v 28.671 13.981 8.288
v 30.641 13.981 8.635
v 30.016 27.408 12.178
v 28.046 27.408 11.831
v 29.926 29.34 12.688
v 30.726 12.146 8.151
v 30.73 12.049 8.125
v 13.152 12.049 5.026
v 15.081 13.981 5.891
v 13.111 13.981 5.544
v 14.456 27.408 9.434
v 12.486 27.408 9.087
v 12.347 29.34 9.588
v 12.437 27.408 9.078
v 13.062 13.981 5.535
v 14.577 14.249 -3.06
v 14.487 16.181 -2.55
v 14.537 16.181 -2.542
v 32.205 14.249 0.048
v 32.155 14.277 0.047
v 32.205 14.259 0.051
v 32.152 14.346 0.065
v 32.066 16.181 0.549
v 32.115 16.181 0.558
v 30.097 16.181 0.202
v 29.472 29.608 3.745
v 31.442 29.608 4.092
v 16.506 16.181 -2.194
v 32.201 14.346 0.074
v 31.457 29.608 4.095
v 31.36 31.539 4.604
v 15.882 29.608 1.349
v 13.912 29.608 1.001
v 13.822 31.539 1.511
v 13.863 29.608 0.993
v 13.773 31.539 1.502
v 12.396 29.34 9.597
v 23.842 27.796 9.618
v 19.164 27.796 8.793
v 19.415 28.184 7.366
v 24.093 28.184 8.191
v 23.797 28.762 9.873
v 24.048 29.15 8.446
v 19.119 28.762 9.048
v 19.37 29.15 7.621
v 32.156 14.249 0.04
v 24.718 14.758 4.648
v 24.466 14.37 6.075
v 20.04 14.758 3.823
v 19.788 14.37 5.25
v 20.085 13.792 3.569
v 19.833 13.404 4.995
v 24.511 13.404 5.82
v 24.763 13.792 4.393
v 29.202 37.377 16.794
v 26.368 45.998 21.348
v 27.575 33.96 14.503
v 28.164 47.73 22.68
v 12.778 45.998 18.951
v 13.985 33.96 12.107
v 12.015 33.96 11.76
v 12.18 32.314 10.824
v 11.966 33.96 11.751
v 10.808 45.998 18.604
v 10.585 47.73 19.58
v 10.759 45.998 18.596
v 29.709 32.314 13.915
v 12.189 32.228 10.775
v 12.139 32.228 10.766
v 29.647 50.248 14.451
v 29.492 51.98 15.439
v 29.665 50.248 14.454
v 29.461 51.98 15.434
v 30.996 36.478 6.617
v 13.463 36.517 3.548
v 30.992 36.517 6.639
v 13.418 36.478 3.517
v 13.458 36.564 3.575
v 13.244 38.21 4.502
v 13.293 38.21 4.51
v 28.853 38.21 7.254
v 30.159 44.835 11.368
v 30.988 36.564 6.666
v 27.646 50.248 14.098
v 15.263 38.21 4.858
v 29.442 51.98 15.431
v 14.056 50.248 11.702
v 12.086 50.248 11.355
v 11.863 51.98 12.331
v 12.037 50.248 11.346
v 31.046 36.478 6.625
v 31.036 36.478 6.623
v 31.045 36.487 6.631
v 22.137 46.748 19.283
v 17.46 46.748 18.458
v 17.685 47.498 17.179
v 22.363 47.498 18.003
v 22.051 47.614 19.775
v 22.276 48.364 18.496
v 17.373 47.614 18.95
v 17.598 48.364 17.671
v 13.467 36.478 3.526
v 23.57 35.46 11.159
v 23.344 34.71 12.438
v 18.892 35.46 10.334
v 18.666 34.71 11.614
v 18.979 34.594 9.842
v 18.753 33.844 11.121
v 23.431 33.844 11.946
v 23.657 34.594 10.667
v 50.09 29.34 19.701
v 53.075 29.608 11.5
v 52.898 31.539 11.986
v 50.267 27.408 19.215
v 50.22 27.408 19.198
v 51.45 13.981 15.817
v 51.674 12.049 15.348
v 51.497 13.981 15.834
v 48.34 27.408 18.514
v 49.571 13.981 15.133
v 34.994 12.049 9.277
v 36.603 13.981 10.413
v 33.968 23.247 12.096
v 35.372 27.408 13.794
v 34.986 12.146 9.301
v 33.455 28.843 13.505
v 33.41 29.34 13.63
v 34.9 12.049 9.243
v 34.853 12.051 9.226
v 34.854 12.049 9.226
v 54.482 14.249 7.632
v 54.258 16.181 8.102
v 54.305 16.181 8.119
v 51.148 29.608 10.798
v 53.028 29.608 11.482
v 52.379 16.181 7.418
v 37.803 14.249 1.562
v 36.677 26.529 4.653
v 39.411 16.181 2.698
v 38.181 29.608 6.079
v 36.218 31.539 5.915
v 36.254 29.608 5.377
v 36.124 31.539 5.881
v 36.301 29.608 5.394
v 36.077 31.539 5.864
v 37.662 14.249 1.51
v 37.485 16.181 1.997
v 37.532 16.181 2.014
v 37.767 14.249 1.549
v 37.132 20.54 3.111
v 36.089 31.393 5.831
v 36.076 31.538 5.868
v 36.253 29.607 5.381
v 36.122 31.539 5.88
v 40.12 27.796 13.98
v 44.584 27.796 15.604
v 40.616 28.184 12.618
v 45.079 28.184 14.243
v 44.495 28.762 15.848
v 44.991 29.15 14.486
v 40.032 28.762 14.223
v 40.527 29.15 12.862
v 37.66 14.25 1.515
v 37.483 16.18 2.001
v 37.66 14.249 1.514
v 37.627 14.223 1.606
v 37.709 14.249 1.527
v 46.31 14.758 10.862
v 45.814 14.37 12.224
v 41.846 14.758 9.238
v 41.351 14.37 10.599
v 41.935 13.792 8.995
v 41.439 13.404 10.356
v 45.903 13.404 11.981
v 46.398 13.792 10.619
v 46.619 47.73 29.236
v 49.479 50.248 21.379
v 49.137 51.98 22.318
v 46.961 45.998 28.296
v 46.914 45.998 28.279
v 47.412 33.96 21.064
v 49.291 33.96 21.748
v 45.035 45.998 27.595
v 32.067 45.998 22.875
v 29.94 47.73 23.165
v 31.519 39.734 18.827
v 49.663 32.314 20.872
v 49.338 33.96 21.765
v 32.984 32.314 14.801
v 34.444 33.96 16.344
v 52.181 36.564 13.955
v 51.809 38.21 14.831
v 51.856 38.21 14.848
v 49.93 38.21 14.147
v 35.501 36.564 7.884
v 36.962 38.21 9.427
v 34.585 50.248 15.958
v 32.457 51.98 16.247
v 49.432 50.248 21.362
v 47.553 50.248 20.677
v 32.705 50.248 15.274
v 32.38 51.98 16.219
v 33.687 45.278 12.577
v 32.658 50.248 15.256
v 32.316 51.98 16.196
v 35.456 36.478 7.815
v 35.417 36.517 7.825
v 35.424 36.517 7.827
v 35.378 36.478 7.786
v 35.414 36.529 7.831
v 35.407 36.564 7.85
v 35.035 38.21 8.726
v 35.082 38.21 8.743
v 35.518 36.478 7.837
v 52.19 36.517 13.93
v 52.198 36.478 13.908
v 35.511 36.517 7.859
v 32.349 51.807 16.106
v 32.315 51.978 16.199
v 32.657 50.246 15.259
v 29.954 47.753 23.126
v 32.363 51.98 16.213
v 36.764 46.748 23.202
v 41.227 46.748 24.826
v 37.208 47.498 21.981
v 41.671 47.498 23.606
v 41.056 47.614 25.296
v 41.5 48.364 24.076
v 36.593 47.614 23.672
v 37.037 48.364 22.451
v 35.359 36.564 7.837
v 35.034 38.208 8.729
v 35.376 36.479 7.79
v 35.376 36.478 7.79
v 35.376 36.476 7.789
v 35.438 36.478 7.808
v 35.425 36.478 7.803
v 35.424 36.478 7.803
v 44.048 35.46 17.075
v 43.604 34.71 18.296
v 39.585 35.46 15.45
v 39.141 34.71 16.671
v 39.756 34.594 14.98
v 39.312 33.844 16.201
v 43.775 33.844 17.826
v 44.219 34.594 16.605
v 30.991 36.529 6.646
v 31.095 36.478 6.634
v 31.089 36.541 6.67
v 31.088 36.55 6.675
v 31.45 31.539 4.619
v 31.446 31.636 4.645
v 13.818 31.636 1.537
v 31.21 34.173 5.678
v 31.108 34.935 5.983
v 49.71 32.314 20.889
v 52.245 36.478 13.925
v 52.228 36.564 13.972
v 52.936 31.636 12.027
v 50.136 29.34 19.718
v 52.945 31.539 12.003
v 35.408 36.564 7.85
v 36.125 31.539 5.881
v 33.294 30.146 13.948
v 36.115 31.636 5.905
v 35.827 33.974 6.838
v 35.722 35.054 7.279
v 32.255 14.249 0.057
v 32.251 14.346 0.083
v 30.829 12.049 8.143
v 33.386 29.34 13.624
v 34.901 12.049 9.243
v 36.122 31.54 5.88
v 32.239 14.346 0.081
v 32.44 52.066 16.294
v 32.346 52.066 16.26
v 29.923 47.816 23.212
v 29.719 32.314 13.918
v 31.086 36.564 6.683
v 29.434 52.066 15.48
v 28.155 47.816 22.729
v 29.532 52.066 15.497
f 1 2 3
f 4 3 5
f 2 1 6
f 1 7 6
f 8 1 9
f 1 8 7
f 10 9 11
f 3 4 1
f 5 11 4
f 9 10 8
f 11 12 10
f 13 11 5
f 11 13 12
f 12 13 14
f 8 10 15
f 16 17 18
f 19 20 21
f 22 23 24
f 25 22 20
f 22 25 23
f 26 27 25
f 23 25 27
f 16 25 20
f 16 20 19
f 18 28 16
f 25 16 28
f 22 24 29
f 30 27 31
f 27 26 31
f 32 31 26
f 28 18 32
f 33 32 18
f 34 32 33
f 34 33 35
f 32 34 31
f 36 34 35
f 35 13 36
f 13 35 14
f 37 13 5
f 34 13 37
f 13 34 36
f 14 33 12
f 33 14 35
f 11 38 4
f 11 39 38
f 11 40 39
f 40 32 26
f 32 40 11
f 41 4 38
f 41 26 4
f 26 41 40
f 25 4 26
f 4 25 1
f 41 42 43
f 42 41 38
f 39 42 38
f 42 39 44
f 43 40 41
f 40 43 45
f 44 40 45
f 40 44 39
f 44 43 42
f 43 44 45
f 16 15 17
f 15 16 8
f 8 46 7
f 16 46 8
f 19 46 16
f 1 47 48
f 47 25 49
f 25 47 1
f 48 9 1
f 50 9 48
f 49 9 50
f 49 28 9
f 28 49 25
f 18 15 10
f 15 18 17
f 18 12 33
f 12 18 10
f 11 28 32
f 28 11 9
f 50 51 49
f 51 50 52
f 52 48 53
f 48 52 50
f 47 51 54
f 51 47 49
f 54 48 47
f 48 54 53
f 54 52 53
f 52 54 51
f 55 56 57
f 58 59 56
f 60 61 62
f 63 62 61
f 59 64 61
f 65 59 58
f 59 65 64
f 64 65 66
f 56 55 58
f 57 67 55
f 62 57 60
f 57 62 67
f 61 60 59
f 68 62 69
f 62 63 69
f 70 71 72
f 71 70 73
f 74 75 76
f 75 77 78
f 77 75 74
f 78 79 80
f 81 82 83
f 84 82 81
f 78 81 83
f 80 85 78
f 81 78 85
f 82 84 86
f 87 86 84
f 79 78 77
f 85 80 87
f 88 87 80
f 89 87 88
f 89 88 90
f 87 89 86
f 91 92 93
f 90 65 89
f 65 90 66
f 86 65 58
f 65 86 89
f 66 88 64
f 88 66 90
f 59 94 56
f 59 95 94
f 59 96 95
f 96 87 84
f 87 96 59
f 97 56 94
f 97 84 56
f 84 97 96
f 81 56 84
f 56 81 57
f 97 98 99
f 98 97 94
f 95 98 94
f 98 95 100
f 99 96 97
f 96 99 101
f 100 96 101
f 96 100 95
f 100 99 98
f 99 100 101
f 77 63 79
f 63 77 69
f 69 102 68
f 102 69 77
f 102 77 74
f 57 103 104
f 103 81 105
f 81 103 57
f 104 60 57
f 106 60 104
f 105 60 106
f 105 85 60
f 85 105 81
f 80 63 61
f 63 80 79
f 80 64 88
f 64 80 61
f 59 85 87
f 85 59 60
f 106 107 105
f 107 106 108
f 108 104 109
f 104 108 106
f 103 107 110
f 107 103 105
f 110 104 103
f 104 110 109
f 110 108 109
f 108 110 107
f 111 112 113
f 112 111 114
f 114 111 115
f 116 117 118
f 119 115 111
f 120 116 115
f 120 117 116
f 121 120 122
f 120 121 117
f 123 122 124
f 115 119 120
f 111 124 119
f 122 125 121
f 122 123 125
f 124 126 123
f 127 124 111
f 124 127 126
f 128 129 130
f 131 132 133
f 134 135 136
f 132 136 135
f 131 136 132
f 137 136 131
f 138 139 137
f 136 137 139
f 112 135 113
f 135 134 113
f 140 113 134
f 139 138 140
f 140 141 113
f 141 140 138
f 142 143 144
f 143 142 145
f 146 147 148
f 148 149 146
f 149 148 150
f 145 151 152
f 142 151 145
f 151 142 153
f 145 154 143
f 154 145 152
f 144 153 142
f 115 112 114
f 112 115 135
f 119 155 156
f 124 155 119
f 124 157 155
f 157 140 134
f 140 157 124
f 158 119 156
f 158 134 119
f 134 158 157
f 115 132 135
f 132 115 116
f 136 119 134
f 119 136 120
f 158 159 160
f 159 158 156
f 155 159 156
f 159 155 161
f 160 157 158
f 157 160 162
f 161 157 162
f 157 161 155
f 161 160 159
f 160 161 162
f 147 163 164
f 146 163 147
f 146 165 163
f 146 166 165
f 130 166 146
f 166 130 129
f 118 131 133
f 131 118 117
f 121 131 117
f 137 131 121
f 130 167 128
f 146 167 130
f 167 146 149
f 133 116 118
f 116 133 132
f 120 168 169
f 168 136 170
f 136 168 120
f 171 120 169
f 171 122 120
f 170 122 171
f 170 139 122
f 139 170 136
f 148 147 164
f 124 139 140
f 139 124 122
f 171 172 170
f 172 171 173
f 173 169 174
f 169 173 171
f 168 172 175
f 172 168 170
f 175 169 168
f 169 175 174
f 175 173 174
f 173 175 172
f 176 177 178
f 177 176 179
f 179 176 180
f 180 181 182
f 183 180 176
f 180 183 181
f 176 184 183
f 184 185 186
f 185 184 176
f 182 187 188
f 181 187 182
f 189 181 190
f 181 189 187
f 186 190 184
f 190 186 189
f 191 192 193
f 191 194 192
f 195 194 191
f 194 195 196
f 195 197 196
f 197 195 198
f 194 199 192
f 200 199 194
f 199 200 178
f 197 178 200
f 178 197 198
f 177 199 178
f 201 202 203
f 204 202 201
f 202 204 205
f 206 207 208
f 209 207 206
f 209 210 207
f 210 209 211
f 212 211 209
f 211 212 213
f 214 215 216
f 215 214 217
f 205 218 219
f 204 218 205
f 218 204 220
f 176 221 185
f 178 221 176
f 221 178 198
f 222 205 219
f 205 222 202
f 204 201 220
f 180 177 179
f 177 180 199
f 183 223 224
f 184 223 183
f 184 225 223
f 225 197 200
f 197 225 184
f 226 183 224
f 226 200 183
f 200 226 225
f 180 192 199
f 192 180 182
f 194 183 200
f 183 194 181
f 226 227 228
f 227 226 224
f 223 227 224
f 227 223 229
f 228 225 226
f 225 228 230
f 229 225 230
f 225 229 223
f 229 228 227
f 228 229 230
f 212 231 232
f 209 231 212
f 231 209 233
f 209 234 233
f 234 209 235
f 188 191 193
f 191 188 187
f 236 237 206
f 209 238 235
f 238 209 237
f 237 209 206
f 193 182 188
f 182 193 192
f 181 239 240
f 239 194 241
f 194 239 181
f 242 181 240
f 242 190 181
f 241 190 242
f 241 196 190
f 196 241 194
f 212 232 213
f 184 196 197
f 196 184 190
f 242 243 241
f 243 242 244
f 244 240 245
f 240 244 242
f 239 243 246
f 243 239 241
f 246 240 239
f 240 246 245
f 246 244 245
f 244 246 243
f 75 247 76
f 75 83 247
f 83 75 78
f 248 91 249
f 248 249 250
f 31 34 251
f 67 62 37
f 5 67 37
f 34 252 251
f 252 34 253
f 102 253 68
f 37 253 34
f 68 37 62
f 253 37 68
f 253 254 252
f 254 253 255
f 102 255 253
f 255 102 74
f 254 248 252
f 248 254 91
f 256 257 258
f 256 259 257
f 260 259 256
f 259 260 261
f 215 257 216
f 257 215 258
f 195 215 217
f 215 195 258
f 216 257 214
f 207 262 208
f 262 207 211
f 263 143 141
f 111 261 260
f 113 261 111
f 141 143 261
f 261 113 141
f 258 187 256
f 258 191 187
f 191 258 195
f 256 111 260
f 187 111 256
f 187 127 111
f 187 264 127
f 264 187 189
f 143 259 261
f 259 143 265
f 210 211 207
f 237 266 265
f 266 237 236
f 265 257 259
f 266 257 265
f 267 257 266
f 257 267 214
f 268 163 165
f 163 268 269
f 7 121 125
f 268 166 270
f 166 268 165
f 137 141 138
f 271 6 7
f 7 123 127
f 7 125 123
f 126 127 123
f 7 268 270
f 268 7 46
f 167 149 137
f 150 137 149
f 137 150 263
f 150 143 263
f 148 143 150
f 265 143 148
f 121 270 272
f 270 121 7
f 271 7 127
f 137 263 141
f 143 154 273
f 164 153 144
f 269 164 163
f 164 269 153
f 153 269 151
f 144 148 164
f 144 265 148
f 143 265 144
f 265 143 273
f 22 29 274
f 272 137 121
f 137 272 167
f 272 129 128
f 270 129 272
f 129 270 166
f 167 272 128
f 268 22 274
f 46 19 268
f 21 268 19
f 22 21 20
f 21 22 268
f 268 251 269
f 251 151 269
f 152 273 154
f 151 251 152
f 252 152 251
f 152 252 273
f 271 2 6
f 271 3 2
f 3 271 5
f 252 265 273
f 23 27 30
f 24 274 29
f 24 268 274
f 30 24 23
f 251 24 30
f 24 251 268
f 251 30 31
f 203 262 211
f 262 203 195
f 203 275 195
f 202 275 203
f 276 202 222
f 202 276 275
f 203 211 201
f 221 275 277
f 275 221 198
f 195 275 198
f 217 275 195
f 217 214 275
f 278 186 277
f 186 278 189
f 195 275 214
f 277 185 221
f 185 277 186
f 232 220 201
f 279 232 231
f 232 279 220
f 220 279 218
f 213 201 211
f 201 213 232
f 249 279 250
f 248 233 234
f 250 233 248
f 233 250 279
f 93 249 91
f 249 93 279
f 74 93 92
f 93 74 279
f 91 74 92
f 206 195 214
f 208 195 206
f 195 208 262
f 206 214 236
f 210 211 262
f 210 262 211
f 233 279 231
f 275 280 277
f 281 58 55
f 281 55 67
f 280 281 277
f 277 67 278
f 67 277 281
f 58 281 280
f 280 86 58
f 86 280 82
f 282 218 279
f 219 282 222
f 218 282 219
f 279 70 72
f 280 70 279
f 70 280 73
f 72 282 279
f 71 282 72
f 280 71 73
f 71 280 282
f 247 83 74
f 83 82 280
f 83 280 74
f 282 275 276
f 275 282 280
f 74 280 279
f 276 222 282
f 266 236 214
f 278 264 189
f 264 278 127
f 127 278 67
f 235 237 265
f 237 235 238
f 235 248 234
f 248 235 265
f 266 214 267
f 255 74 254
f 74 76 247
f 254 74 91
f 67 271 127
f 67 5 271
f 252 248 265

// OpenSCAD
union () {
  union () {
    translate ([0, 0, 131.15290450929663]) {
      rotate (a=10.000000000000002, v=[0, -1, 0]) {
        translate ([0, 0, -131.15290450929663]) {
          union () {
            translate ([0, 0, 84.2073157255461]) {
              rotate (a=14.999999999999998, v=[1, 0, 0]) {
                translate ([0, 0, -84.2073157255461]) {
                  union () {
                    difference () {
                      union () {
                        translate ([0, 7.95, 0]) {
                          cube ([17.9, 2, 8.5], center=true);
                        }
                        translate ([7.9, 0, 0]) {
                          cube ([2, 17.8, 8.5], center=true);
                        }
                      }
                      translate ([0, 7.45, 2.0]) {
                        cube ([4.75, 1.0, 1.5], center=true);
                      }
                    }
                    mirror ([0, 1, 0]) {
                      mirror ([1, 0, 0]) {
                        difference () {
                          union () {
                            translate ([0, 7.95, 0]) {
                              cube ([17.9, 2, 8.5], center=true);
                            }
                            translate ([7.9, 0, 0]) {
                              cube ([2, 17.8, 8.5], center=true);
                            }
                          }
                          translate ([0, 7.45, 2.0]) {
                            cube ([4.75, 1.0, 1.5], center=true);
                          }
                        }
                      }
                    }
                  }
                }
              }
            }
            translate ([0, 0, 84.2073157255461]) {
              rotate (a=29.999999999999996, v=[1, 0, 0]) {
                translate ([0, 0, -84.2073157255461]) {
                  union () {
                    difference () {
                      union () {
                        translate ([0, 7.95, 0]) {
                          cube ([17.9, 2, 8.5], center=true);
                        }
                        translate ([7.9, 0, 0]) {
                          cube ([2, 17.8, 8.5], center=true);
                        }
                      }
                      translate ([0, 7.45, 2.0]) {
                        cube ([4.75, 1.0, 1.5], center=true);
                      }
                    }
                    mirror ([0, 1, 0]) {
                      mirror ([1, 0, 0]) {
                        difference () {
                          union () {
                            translate ([0, 7.95, 0]) {
                              cube ([17.9, 2, 8.5], center=true);
                            }
                            translate ([7.9, 0, 0]) {
                              cube ([2, 17.8, 8.5], center=true);
                            }
                          }
                          translate ([0, 7.45, 2.0]) {
                            cube ([4.75, 1.0, 1.5], center=true);
                          }
                        }
                      }
                    }
                  }
                }
              }
            }
          }
        }
      }
    }
    translate ([0, 0, 131.15290450929663]) {
      rotate (a=20.000000000000004, v=[0, -1, 0]) {
        translate ([0, 0, -131.15290450929663]) {
          union () {
            translate ([0, 0, 84.2073157255461]) {
              rotate (a=14.999999999999998, v=[1, 0, 0]) {
                translate ([0, 0, -84.2073157255461]) {
                  union () {
                    difference () {
                      union () {
                        translate ([0, 7.95, 0]) {
                          cube ([17.9, 2, 8.5], center=true);
                        }
                        translate ([7.9, 0, 0]) {
                          cube ([2, 17.8, 8.5], center=true);
                        }
                      }
                      translate ([0, 7.45, 2.0]) {
                        cube ([4.75, 1.0, 1.5], center=true);
                      }
                    }
                    mirror ([0, 1, 0]) {
                      mirror ([1, 0, 0]) {
                        difference () {
                          union () {
                            translate ([0, 7.95, 0]) {
                              cube ([17.9, 2, 8.5], center=true);
                            }
                            translate ([7.9, 0, 0]) {
                              cube ([2, 17.8, 8.5], center=true);
                            }
                          }
                          translate ([0, 7.45, 2.0]) {
                            cube ([4.75, 1.0, 1.5], center=true);
                          }
                        }
                      }
                    }
                  }
                }
              }
            }
            translate ([0, 0, 84.2073157255461]) {
              rotate (a=29.999999999999996, v=[1, 0, 0]) {
                translate ([0, 0, -84.2073157255461]) {
                  union () {
                    difference () {
                      union () {
                        translate ([0, 7.95, 0]) {
                          cube ([17.9, 2, 8.5], center=true);
                        }
                        translate ([7.9, 0, 0]) {
                          cube ([2, 17.8, 8.5], center=true);
                        }
                      }
                      translate ([0, 7.45, 2.0]) {
                        cube ([4.75, 1.0, 1.5], center=true);
                      }
                    }
                    mirror ([0, 1, 0]) {
                      mirror ([1, 0, 0]) {
                        difference () {
                          union () {
                            translate ([0, 7.95, 0]) {
                              cube ([17.9, 2, 8.5], center=true);
                            }
                            translate ([7.9, 0, 0]) {
                              cube ([2, 17.8, 8.5], center=true);
                            }
                          }
                          translate ([0, 7.45, 2.0]) {
                            cube ([4.75, 1.0, 1.5], center=true);
                          }
                        }
                      }
                    }
                  }
                }
              }
            }
          }
        }
      }
    }
  }
  union () {
    translate ([0, 0, 131.15290450929663]) {
      rotate (a=10.000000000000002, v=[0, -1, 0]) {
        translate ([0, 0, -131.15290450929663]) {
          union () {
            union () {
              hull () {
                translate ([0, 0, 84.2073157255461]) {
                  rotate (a=29.999999999999996, v=[1, 0, 0]) {
                    translate ([0, 0, -84.2073157255461]) {
                      color ([16/17, 0, 0, 1]) {
                        translate ([-8.85, -8.899999999999999, 0]) {
                          translate ([0, 0, 0.0]) {
                            cube ([0.1, 0.1, 8.5], center=true);
                          }
                        }
                      }
                    }
                  }
                }
                translate ([0, 0, 84.2073157255461]) {
                  rotate (a=29.999999999999996, v=[1, 0, 0]) {
                    translate ([0, 0, -84.2073157255461]) {
                      color ([16/17, 0, 0, 1]) {
                        translate ([8.950000000000001, -8.899999999999999, 0]) {
                          translate ([0, 0, 0.0]) {
                            cube ([0.1, 0.1, 8.5], center=true);
                          }
                        }
                      }
                    }
                  }
                }
                translate ([0, 0, 84.2073157255461]) {
                  rotate (a=14.999999999999998, v=[1, 0, 0]) {
                    translate ([0, 0, -84.2073157255461]) {
                      color ([16/17, 0, 0, 1]) {
                        translate ([-8.85, 9.0, 0]) {
                          translate ([0, 0, 0.0]) {
                            cube ([0.1, 0.1, 8.5], center=true);
                          }
                        }
                      }
                    }
                  }
                }
              }
              hull () {
                translate ([0, 0, 84.2073157255461]) {
                  rotate (a=29.999999999999996, v=[1, 0, 0]) {
                    translate ([0, 0, -84.2073157255461]) {
                      color ([16/17, 0, 0, 1]) {
                        translate ([8.950000000000001, -8.899999999999999, 0]) {
                          translate ([0, 0, 0.0]) {
                            cube ([0.1, 0.1, 8.5], center=true);
                          }
                        }
                      }
                    }
                  }
                }
                translate ([0, 0, 84.2073157255461]) {
                  rotate (a=14.999999999999998, v=[1, 0, 0]) {
                    translate ([0, 0, -84.2073157255461]) {
                      color ([16/17, 0, 0, 1]) {
                        translate ([-8.85, 9.0, 0]) {
                          translate ([0, 0, 0.0]) {
                            cube ([0.1, 0.1, 8.5], center=true);
                          }
                        }
                      }
                    }
                  }
                }
                translate ([0, 0, 84.2073157255461]) {
                  rotate (a=14.999999999999998, v=[1, 0, 0]) {
                    translate ([0, 0, -84.2073157255461]) {
                      color ([16/17, 0, 0, 1]) {
                        translate ([8.950000000000001, 9.0, 0]) {
                          translate ([0, 0, 0.0]) {
                            cube ([0.1, 0.1, 8.5], center=true);
                          }
                        }
                      }
                    }
                  }
                }
              }
            }
          }
        }
      }
    }
    translate ([0, 0, 131.15290450929663]) {
      rotate (a=20.000000000000004, v=[0, -1, 0]) {
        translate ([0, 0, -131.15290450929663]) {
          union () {
            union () {
              hull () {
                translate ([0, 0, 84.2073157255461]) {
                  rotate (a=29.999999999999996, v=[1, 0, 0]) {
                    translate ([0, 0, -84.2073157255461]) {
                      color ([16/17, 0, 0, 1]) {
                        translate ([-8.85, -8.899999999999999, 0]) {
                          translate ([0, 0, 0.0]) {
                            cube ([0.1, 0.1, 8.5], center=true);
                          }
                        }
                      }
                    }
                  }
                }
                translate ([0, 0, 84.2073157255461]) {
                  rotate (a=29.999999999999996, v=[1, 0, 0]) {
                    translate ([0, 0, -84.2073157255461]) {
                      color ([16/17, 0, 0, 1]) {
                        translate ([8.950000000000001, -8.899999999999999, 0]) {
                          translate ([0, 0, 0.0]) {
                            cube ([0.1, 0.1, 8.5], center=true);
                          }
                        }
                      }
                    }
                  }
                }
                translate ([0, 0, 84.2073157255461]) {
                  rotate (a=14.999999999999998, v=[1, 0, 0]) {
                    translate ([0, 0, -84.2073157255461]) {
                      color ([16/17, 0, 0, 1]) {
                        translate ([-8.85, 9.0, 0]) {
                          translate ([0, 0, 0.0]) {
                            cube ([0.1, 0.1, 8.5], center=true);
                          }
                        }
                      }
                    }
                  }
                }
              }
              hull () {
                translate ([0, 0, 84.2073157255461]) {
                  rotate (a=29.999999999999996, v=[1, 0, 0]) {
                    translate ([0, 0, -84.2073157255461]) {
                      color ([16/17, 0, 0, 1]) {
                        translate ([8.950000000000001, -8.899999999999999, 0]) {
                          translate ([0, 0, 0.0]) {
                            cube ([0.1, 0.1, 8.5], center=true);
                          }
                        }
                      }
                    }
                  }
                }
                translate ([0, 0, 84.2073157255461]) {
                  rotate (a=14.999999999999998, v=[1, 0, 0]) {
                    translate ([0, 0, -84.2073157255461]) {
                      color ([16/17, 0, 0, 1]) {
                        translate ([-8.85, 9.0, 0]) {
                          translate ([0, 0, 0.0]) {
                            cube ([0.1, 0.1, 8.5], center=true);
                          }
                        }
                      }
                    }
                  }
                }
                translate ([0, 0, 84.2073157255461]) {
                  rotate (a=14.999999999999998, v=[1, 0, 0]) {
                    translate ([0, 0, -84.2073157255461]) {
                      color ([16/17, 0, 0, 1]) {
                        translate ([8.950000000000001, 9.0, 0]) {
                          translate ([0, 0, 0.0]) {
                            cube ([0.1, 0.1, 8.5], center=true);
                          }
                        }
                      }
                    }
                  }
                }
              }
            }
          }
        }
      }
    }
  }
  union () {
    union () {
      hull () {
        translate ([0, 0, 131.15290450929663]) {
          rotate (a=20.000000000000004, v=[0, -1, 0]) {
            translate ([0, 0, -131.15290450929663]) {
              translate ([0, 0, 84.2073157255461]) {
                rotate (a=14.999999999999998, v=[1, 0, 0]) {
                  translate ([0, 0, -84.2073157255461]) {
                    color ([16/17, 0, 0, 1]) {
                      translate ([-8.85, -8.899999999999999, 0]) {
                        translate ([0, 0, 0.0]) {
                          cube ([0.1, 0.1, 8.5], center=true);
                        }
                      }
                    }
                  }
                }
              }
            }
          }
        }
        translate ([0, 0, 131.15290450929663]) {
          rotate (a=10.000000000000002, v=[0, -1, 0]) {
            translate ([0, 0, -131.15290450929663]) {
              translate ([0, 0, 84.2073157255461]) {
                rotate (a=14.999999999999998, v=[1, 0, 0]) {
                  translate ([0, 0, -84.2073157255461]) {
                    color ([16/17, 0, 0, 1]) {
                      translate ([8.950000000000001, -8.899999999999999, 0]) {
                        translate ([0, 0, 0.0]) {
                          cube ([0.1, 0.1, 8.5], center=true);
                        }
                      }
                    }
                  }
                }
              }
            }
          }
        }
        translate ([0, 0, 131.15290450929663]) {
          rotate (a=20.000000000000004, v=[0, -1, 0]) {
            translate ([0, 0, -131.15290450929663]) {
              translate ([0, 0, 84.2073157255461]) {
                rotate (a=14.999999999999998, v=[1, 0, 0]) {
                  translate ([0, 0, -84.2073157255461]) {
                    color ([16/17, 0, 0, 1]) {
                      translate ([-8.85, 9.0, 0]) {
                        translate ([0, 0, 0.0]) {
                          cube ([0.1, 0.1, 8.5], center=true);
                        }
                      }
                    }
                  }
                }
              }
            }
          }
        }
      }
      hull () {
        translate ([0, 0, 131.15290450929663]) {
          rotate (a=10.000000000000002, v=[0, -1, 0]) {
            translate ([0, 0, -131.15290450929663]) {
              translate ([0, 0, 84.2073157255461]) {
                rotate (a=14.999999999999998, v=[1, 0, 0]) {
                  translate ([0, 0, -84.2073157255461]) {
                    color ([16/17, 0, 0, 1]) {
                      translate ([8.950000000000001, -8.899999999999999, 0]) {
                        translate ([0, 0, 0.0]) {
                          cube ([0.1, 0.1, 8.5], center=true);
                        }
                      }
                    }
                  }
                }
              }
            }
          }
        }
        translate ([0, 0, 131.15290450929663]) {
          rotate (a=20.000000000000004, v=[0, -1, 0]) {
            translate ([0, 0, -131.15290450929663]) {
              translate ([0, 0, 84.2073157255461]) {
                rotate (a=14.999999999999998, v=[1, 0, 0]) {
                  translate ([0, 0, -84.2073157255461]) {
                    color ([16/17, 0, 0, 1]) {
                      translate ([-8.85, 9.0, 0]) {
                        translate ([0, 0, 0.0]) {
                          cube ([0.1, 0.1, 8.5], center=true);
                        }
                      }
                    }
                  }
                }
              }
            }
          }
        }
        translate ([0, 0, 131.15290450929663]) {
          rotate (a=10.000000000000002, v=[0, -1, 0]) {
            translate ([0, 0, -131.15290450929663]) {
              translate ([0, 0, 84.2073157255461]) {
                rotate (a=14.999999999999998, v=[1, 0, 0]) {
                  translate ([0, 0, -84.2073157255461]) {
                    color ([16/17, 0, 0, 1]) {
                      translate ([8.950000000000001, 9.0, 0]) {
                        translate ([0, 0, 0.0]) {
                          cube ([0.1, 0.1, 8.5], center=true);
                        }
                      }
                    }
                  }
                }
              }
            }
          }
        }
      }
    }
    union () {
      hull () {
        translate ([0, 0, 131.15290450929663]) {
          rotate (a=20.000000000000004, v=[0, -1, 0]) {
            translate ([0, 0, -131.15290450929663]) {
              translate ([0, 0, 84.2073157255461]) {
                rotate (a=29.999999999999996, v=[1, 0, 0]) {
                  translate ([0, 0, -84.2073157255461]) {
                    color ([16/17, 0, 0, 1]) {
                      translate ([-8.85, -8.899999999999999, 0]) {
                        translate ([0, 0, 0.0]) {
                          cube ([0.1, 0.1, 8.5], center=true);
                        }
                      }
                    }
                  }
                }
              }
            }
          }
        }
        translate ([0, 0, 131.15290450929663]) {
          rotate (a=10.000000000000002, v=[0, -1, 0]) {
            translate ([0, 0, -131.15290450929663]) {
              translate ([0, 0, 84.2073157255461]) {
                rotate (a=29.999999999999996, v=[1, 0, 0]) {
                  translate ([0, 0, -84.2073157255461]) {
                    color ([16/17, 0, 0, 1]) {
                      translate ([8.950000000000001, -8.899999999999999, 0]) {
                        translate ([0, 0, 0.0]) {
                          cube ([0.1, 0.1, 8.5], center=true);
                        }
                      }
                    }
                  }
                }
              }
            }
          }
        }
        translate ([0, 0, 131.15290450929663]) {
          rotate (a=20.000000000000004, v=[0, -1, 0]) {
            translate ([0, 0, -131.15290450929663]) {
              translate ([0, 0, 84.2073157255461]) {
                rotate (a=29.999999999999996, v=[1, 0, 0]) {
                  translate ([0, 0, -84.2073157255461]) {
                    color ([16/17, 0, 0, 1]) {
                      translate ([-8.85, 9.0, 0]) {
                        translate ([0, 0, 0.0]) {
                          cube ([0.1, 0.1, 8.5], center=true);
                        }
                      }
                    }
                  }
                }
              }
            }
          }
        }
      }
      hull () {
        translate ([0, 0, 131.15290450929663]) {
          rotate (a=10.000000000000002, v=[0, -1, 0]) {
            translate ([0, 0, -131.15290450929663]) {
              translate ([0, 0, 84.2073157255461]) {
                rotate (a=29.999999999999996, v=[1, 0, 0]) {
                  translate ([0, 0, -84.2073157255461]) {
                    color ([16/17, 0, 0, 1]) {
                      translate ([8.950000000000001, -8.899999999999999, 0]) {
                        translate ([0, 0, 0.0]) {
                          cube ([0.1, 0.1, 8.5], center=true);
                        }
                      }
                    }
                  }
                }
              }
            }
          }
        }
        translate ([0, 0, 131.15290450929663]) {
          rotate (a=20.000000000000004, v=[0, -1, 0]) {
            translate ([0, 0, -131.15290450929663]) {
              translate ([0, 0, 84.2073157255461]) {
                rotate (a=29.999999999999996, v=[1, 0, 0]) {
                  translate ([0, 0, -84.2073157255461]) {
                    color ([16/17, 0, 0, 1]) {
                      translate ([-8.85, 9.0, 0]) {
                        translate ([0, 0, 0.0]) {
                          cube ([0.1, 0.1, 8.5], center=true);
                        }
                      }
                    }
                  }
                }
              }
            }
          }
        }
        translate ([0, 0, 131.15290450929663]) {
          rotate (a=10.000000000000002, v=[0, -1, 0]) {
            translate ([0, 0, -131.15290450929663]) {
              translate ([0, 0, 84.2073157255461]) {
                rotate (a=29.999999999999996, v=[1, 0, 0]) {
                  translate ([0, 0, -84.2073157255461]) {
                    color ([16/17, 0, 0, 1]) {
                      translate ([8.950000000000001, 9.0, 0]) {
                        translate ([0, 0, 0.0]) {
                          cube ([0.1, 0.1, 8.5], center=true);
                        }
                      }
                    }
                  }
                }
              }
            }
          }
        }
      }
    }
  }
  union () {
    union () {
      hull () {
        translate ([0, 0, 131.15290450929663]) {
          rotate (a=20.000000000000004, v=[0, -1, 0]) {
            translate ([0, 0, -131.15290450929663]) {
              translate ([0, 0, 84.2073157255461]) {
                rotate (a=29.999999999999996, v=[1, 0, 0]) {
                  translate ([0, 0, -84.2073157255461]) {
                    color ([16/17, 0, 0, 1]) {
                      translate ([-8.85, -8.899999999999999, 0]) {
                        translate ([0, 0, 0.0]) {
                          cube ([0.1, 0.1, 8.5], center=true);
                        }
                      }
                    }
                  }
                }
              }
            }
          }
        }
        translate ([0, 0, 131.15290450929663]) {
          rotate (a=10.000000000000002, v=[0, -1, 0]) {
            translate ([0, 0, -131.15290450929663]) {
              translate ([0, 0, 84.2073157255461]) {
                rotate (a=29.999999999999996, v=[1, 0, 0]) {
                  translate ([0, 0, -84.2073157255461]) {
                    color ([16/17, 0, 0, 1]) {
                      translate ([8.950000000000001, -8.899999999999999, 0]) {
                        translate ([0, 0, 0.0]) {
                          cube ([0.1, 0.1, 8.5], center=true);
                        }
                      }
                    }
                  }
                }
              }
            }
          }
        }
        translate ([0, 0, 131.15290450929663]) {
          rotate (a=20.000000000000004, v=[0, -1, 0]) {
            translate ([0, 0, -131.15290450929663]) {
              translate ([0, 0, 84.2073157255461]) {
                rotate (a=14.999999999999998, v=[1, 0, 0]) {
                  translate ([0, 0, -84.2073157255461]) {
                    color ([16/17, 0, 0, 1]) {
                      translate ([-8.85, 9.0, 0]) {
                        translate ([0, 0, 0.0]) {
                          cube ([0.1, 0.1, 8.5], center=true);
                        }
                      }
                    }
                  }
                }
              }
            }
          }
        }
      }
      hull () {
        translate ([0, 0, 131.15290450929663]) {
          rotate (a=10.000000000000002, v=[0, -1, 0]) {
            translate ([0, 0, -131.15290450929663]) {
              translate ([0, 0, 84.2073157255461]) {
                rotate (a=29.999999999999996, v=[1, 0, 0]) {
                  translate ([0, 0, -84.2073157255461]) {
                    color ([16/17, 0, 0, 1]) {
                      translate ([8.950000000000001, -8.899999999999999, 0]) {
                        translate ([0, 0, 0.0]) {
                          cube ([0.1, 0.1, 8.5], center=true);
                        }
                      }
                    }
                  }
                }
              }
            }
          }
        }
        translate ([0, 0, 131.15290450929663]) {
          rotate (a=20.000000000000004, v=[0, -1, 0]) {
            translate ([0, 0, -131.15290450929663]) {
              translate ([0, 0, 84.2073157255461]) {
                rotate (a=14.999999999999998, v=[1, 0, 0]) {
                  translate ([0, 0, -84.2073157255461]) {
                    color ([16/17, 0, 0, 1]) {
                      translate ([-8.85, 9.0, 0]) {
                        translate ([0, 0, 0.0]) {
                          cube ([0.1, 0.1, 8.5], center=true);
                        }
                      }
                    }
                  }
                }
              }
            }
          }
        }
        translate ([0, 0, 131.15290450929663]) {
          rotate (a=10.000000000000002, v=[0, -1, 0]) {
            translate ([0, 0, -131.15290450929663]) {
              translate ([0, 0, 84.2073157255461]) {
                rotate (a=14.999999999999998, v=[1, 0, 0]) {
                  translate ([0, 0, -84.2073157255461]) {
                    color ([16/17, 0, 0, 1]) {
                      translate ([8.950000000000001, 9.0, 0]) {
                        translate ([0, 0, 0.0]) {
                          cube ([0.1, 0.1, 8.5], center=true);
                        }
                      }
                    }
                  }
                }
              }
            }
          }
        }
      }
    }
  }
}
